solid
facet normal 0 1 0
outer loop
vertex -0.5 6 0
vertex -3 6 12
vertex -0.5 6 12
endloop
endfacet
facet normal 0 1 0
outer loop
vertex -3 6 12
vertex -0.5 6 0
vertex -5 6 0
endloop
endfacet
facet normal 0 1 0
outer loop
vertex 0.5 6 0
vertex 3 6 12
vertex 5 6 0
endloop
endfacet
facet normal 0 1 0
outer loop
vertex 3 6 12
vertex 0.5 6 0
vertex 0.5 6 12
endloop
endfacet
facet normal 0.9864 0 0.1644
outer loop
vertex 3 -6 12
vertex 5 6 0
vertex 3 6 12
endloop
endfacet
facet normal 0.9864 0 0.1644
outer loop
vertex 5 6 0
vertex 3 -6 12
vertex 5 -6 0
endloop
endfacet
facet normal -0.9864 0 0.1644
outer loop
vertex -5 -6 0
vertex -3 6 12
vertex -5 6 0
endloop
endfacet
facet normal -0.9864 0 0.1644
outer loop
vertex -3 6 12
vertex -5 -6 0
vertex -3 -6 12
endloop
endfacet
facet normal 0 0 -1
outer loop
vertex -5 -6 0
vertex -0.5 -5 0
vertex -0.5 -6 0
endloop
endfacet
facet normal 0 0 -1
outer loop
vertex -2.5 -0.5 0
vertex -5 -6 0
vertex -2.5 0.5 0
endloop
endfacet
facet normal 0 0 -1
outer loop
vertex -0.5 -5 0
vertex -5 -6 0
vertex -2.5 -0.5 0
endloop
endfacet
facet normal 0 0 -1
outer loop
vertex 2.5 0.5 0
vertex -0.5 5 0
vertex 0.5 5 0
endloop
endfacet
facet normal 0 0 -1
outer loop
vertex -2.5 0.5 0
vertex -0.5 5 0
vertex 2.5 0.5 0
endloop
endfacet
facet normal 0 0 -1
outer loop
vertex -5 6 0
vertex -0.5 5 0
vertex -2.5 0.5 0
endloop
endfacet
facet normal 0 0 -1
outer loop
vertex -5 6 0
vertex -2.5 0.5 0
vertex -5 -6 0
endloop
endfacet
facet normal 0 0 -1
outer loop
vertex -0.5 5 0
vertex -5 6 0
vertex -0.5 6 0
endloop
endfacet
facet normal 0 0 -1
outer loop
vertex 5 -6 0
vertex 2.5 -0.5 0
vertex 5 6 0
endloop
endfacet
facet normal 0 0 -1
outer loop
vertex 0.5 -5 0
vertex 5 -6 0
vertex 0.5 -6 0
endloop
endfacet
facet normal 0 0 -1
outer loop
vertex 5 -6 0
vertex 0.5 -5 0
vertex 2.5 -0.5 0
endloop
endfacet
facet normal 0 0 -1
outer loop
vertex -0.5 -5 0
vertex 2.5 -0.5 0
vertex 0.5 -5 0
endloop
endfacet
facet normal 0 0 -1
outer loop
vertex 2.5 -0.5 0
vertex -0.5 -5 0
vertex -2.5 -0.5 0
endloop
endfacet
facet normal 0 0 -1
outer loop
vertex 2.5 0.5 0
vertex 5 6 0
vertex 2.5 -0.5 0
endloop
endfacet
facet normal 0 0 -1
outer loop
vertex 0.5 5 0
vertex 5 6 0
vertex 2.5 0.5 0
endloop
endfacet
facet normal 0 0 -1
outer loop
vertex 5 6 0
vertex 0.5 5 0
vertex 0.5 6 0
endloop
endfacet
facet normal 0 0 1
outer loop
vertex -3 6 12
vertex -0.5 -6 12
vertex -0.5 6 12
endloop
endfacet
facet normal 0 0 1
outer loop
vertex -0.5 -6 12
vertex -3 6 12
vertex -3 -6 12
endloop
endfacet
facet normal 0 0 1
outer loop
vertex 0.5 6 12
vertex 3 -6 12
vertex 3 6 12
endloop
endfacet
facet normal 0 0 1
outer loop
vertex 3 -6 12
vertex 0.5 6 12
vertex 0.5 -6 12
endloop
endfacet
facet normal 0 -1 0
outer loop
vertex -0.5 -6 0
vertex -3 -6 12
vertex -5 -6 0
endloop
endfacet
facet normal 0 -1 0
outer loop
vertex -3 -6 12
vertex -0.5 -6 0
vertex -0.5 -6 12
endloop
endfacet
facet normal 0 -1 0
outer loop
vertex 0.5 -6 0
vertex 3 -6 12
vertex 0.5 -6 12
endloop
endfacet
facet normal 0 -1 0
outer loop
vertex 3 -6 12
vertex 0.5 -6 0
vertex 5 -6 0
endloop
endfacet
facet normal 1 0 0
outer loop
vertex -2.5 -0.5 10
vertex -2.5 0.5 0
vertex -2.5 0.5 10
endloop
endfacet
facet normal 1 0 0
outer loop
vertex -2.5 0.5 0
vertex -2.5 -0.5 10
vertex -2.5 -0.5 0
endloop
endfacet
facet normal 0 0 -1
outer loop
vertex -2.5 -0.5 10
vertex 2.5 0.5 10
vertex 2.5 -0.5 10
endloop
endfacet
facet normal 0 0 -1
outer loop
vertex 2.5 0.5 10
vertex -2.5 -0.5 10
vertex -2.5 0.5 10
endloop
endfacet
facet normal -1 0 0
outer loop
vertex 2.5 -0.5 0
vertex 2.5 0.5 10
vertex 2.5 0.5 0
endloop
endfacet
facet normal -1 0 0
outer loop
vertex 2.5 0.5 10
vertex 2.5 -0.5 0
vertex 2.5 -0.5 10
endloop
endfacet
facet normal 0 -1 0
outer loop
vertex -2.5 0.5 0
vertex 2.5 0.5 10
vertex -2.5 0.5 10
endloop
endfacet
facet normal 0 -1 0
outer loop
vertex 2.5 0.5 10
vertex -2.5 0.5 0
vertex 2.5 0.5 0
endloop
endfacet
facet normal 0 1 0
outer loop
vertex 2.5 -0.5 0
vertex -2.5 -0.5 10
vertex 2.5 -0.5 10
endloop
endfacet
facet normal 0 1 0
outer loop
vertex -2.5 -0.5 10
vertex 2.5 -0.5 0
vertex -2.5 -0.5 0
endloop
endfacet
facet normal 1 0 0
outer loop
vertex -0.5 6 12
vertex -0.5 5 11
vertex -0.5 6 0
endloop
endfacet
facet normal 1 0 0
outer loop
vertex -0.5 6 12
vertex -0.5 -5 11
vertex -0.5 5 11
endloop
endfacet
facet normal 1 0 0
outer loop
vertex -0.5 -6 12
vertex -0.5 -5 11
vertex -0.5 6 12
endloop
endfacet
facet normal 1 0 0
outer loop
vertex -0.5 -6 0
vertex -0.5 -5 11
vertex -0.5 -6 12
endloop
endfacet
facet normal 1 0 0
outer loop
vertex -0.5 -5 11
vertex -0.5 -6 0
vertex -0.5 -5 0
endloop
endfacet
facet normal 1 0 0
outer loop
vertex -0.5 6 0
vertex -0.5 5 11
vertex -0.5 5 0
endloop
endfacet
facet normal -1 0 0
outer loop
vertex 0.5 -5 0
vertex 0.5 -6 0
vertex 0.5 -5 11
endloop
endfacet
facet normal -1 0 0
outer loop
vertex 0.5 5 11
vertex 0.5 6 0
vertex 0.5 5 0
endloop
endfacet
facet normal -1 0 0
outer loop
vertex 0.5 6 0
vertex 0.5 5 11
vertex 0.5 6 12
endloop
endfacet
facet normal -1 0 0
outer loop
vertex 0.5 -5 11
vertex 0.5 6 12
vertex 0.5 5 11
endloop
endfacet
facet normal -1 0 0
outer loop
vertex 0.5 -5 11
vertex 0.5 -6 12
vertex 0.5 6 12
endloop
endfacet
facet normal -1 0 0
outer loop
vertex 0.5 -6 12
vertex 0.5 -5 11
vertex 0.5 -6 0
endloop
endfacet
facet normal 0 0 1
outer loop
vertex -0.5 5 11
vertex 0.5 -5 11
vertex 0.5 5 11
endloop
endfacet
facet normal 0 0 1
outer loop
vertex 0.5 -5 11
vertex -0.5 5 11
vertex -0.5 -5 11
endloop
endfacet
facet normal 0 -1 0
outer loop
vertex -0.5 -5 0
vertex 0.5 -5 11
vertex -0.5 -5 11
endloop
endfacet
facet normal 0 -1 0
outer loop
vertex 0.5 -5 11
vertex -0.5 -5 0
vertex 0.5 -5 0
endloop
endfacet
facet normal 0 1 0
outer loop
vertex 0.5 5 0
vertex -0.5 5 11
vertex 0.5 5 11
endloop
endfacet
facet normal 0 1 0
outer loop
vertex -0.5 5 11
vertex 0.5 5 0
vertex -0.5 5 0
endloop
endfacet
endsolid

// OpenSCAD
width  = 12; // Knob width (extrude)
bottom = 10; //thick end height
top=6;
depth = 12; //height
tangx=5;
tangy=1;
tangz=10;


difference () {

translate ([0,width/2,0]) rotate ([90,0,0]) linear_extrude(width) polygon(points=[[bottom/2,0],[-bottom/2,0],[-top/2,depth],[top/2,depth]]);

  //for (i=[1:2:length]) translate ([i,-0.5,-5]) cube ([1,1,30]);
    
    translate ([-tangx/2,-tangy/2,0]) cube ([tangx,tangy,tangz]);

    translate ([-0.5,-width/2,depth-1]) cube ([1,width,1]);
    translate ([-0.5,-width/2,0]) cube ([1,1,depth]);
    translate ([-0.5,width/2-1,0]) cube ([1,1,depth]);
}
 
